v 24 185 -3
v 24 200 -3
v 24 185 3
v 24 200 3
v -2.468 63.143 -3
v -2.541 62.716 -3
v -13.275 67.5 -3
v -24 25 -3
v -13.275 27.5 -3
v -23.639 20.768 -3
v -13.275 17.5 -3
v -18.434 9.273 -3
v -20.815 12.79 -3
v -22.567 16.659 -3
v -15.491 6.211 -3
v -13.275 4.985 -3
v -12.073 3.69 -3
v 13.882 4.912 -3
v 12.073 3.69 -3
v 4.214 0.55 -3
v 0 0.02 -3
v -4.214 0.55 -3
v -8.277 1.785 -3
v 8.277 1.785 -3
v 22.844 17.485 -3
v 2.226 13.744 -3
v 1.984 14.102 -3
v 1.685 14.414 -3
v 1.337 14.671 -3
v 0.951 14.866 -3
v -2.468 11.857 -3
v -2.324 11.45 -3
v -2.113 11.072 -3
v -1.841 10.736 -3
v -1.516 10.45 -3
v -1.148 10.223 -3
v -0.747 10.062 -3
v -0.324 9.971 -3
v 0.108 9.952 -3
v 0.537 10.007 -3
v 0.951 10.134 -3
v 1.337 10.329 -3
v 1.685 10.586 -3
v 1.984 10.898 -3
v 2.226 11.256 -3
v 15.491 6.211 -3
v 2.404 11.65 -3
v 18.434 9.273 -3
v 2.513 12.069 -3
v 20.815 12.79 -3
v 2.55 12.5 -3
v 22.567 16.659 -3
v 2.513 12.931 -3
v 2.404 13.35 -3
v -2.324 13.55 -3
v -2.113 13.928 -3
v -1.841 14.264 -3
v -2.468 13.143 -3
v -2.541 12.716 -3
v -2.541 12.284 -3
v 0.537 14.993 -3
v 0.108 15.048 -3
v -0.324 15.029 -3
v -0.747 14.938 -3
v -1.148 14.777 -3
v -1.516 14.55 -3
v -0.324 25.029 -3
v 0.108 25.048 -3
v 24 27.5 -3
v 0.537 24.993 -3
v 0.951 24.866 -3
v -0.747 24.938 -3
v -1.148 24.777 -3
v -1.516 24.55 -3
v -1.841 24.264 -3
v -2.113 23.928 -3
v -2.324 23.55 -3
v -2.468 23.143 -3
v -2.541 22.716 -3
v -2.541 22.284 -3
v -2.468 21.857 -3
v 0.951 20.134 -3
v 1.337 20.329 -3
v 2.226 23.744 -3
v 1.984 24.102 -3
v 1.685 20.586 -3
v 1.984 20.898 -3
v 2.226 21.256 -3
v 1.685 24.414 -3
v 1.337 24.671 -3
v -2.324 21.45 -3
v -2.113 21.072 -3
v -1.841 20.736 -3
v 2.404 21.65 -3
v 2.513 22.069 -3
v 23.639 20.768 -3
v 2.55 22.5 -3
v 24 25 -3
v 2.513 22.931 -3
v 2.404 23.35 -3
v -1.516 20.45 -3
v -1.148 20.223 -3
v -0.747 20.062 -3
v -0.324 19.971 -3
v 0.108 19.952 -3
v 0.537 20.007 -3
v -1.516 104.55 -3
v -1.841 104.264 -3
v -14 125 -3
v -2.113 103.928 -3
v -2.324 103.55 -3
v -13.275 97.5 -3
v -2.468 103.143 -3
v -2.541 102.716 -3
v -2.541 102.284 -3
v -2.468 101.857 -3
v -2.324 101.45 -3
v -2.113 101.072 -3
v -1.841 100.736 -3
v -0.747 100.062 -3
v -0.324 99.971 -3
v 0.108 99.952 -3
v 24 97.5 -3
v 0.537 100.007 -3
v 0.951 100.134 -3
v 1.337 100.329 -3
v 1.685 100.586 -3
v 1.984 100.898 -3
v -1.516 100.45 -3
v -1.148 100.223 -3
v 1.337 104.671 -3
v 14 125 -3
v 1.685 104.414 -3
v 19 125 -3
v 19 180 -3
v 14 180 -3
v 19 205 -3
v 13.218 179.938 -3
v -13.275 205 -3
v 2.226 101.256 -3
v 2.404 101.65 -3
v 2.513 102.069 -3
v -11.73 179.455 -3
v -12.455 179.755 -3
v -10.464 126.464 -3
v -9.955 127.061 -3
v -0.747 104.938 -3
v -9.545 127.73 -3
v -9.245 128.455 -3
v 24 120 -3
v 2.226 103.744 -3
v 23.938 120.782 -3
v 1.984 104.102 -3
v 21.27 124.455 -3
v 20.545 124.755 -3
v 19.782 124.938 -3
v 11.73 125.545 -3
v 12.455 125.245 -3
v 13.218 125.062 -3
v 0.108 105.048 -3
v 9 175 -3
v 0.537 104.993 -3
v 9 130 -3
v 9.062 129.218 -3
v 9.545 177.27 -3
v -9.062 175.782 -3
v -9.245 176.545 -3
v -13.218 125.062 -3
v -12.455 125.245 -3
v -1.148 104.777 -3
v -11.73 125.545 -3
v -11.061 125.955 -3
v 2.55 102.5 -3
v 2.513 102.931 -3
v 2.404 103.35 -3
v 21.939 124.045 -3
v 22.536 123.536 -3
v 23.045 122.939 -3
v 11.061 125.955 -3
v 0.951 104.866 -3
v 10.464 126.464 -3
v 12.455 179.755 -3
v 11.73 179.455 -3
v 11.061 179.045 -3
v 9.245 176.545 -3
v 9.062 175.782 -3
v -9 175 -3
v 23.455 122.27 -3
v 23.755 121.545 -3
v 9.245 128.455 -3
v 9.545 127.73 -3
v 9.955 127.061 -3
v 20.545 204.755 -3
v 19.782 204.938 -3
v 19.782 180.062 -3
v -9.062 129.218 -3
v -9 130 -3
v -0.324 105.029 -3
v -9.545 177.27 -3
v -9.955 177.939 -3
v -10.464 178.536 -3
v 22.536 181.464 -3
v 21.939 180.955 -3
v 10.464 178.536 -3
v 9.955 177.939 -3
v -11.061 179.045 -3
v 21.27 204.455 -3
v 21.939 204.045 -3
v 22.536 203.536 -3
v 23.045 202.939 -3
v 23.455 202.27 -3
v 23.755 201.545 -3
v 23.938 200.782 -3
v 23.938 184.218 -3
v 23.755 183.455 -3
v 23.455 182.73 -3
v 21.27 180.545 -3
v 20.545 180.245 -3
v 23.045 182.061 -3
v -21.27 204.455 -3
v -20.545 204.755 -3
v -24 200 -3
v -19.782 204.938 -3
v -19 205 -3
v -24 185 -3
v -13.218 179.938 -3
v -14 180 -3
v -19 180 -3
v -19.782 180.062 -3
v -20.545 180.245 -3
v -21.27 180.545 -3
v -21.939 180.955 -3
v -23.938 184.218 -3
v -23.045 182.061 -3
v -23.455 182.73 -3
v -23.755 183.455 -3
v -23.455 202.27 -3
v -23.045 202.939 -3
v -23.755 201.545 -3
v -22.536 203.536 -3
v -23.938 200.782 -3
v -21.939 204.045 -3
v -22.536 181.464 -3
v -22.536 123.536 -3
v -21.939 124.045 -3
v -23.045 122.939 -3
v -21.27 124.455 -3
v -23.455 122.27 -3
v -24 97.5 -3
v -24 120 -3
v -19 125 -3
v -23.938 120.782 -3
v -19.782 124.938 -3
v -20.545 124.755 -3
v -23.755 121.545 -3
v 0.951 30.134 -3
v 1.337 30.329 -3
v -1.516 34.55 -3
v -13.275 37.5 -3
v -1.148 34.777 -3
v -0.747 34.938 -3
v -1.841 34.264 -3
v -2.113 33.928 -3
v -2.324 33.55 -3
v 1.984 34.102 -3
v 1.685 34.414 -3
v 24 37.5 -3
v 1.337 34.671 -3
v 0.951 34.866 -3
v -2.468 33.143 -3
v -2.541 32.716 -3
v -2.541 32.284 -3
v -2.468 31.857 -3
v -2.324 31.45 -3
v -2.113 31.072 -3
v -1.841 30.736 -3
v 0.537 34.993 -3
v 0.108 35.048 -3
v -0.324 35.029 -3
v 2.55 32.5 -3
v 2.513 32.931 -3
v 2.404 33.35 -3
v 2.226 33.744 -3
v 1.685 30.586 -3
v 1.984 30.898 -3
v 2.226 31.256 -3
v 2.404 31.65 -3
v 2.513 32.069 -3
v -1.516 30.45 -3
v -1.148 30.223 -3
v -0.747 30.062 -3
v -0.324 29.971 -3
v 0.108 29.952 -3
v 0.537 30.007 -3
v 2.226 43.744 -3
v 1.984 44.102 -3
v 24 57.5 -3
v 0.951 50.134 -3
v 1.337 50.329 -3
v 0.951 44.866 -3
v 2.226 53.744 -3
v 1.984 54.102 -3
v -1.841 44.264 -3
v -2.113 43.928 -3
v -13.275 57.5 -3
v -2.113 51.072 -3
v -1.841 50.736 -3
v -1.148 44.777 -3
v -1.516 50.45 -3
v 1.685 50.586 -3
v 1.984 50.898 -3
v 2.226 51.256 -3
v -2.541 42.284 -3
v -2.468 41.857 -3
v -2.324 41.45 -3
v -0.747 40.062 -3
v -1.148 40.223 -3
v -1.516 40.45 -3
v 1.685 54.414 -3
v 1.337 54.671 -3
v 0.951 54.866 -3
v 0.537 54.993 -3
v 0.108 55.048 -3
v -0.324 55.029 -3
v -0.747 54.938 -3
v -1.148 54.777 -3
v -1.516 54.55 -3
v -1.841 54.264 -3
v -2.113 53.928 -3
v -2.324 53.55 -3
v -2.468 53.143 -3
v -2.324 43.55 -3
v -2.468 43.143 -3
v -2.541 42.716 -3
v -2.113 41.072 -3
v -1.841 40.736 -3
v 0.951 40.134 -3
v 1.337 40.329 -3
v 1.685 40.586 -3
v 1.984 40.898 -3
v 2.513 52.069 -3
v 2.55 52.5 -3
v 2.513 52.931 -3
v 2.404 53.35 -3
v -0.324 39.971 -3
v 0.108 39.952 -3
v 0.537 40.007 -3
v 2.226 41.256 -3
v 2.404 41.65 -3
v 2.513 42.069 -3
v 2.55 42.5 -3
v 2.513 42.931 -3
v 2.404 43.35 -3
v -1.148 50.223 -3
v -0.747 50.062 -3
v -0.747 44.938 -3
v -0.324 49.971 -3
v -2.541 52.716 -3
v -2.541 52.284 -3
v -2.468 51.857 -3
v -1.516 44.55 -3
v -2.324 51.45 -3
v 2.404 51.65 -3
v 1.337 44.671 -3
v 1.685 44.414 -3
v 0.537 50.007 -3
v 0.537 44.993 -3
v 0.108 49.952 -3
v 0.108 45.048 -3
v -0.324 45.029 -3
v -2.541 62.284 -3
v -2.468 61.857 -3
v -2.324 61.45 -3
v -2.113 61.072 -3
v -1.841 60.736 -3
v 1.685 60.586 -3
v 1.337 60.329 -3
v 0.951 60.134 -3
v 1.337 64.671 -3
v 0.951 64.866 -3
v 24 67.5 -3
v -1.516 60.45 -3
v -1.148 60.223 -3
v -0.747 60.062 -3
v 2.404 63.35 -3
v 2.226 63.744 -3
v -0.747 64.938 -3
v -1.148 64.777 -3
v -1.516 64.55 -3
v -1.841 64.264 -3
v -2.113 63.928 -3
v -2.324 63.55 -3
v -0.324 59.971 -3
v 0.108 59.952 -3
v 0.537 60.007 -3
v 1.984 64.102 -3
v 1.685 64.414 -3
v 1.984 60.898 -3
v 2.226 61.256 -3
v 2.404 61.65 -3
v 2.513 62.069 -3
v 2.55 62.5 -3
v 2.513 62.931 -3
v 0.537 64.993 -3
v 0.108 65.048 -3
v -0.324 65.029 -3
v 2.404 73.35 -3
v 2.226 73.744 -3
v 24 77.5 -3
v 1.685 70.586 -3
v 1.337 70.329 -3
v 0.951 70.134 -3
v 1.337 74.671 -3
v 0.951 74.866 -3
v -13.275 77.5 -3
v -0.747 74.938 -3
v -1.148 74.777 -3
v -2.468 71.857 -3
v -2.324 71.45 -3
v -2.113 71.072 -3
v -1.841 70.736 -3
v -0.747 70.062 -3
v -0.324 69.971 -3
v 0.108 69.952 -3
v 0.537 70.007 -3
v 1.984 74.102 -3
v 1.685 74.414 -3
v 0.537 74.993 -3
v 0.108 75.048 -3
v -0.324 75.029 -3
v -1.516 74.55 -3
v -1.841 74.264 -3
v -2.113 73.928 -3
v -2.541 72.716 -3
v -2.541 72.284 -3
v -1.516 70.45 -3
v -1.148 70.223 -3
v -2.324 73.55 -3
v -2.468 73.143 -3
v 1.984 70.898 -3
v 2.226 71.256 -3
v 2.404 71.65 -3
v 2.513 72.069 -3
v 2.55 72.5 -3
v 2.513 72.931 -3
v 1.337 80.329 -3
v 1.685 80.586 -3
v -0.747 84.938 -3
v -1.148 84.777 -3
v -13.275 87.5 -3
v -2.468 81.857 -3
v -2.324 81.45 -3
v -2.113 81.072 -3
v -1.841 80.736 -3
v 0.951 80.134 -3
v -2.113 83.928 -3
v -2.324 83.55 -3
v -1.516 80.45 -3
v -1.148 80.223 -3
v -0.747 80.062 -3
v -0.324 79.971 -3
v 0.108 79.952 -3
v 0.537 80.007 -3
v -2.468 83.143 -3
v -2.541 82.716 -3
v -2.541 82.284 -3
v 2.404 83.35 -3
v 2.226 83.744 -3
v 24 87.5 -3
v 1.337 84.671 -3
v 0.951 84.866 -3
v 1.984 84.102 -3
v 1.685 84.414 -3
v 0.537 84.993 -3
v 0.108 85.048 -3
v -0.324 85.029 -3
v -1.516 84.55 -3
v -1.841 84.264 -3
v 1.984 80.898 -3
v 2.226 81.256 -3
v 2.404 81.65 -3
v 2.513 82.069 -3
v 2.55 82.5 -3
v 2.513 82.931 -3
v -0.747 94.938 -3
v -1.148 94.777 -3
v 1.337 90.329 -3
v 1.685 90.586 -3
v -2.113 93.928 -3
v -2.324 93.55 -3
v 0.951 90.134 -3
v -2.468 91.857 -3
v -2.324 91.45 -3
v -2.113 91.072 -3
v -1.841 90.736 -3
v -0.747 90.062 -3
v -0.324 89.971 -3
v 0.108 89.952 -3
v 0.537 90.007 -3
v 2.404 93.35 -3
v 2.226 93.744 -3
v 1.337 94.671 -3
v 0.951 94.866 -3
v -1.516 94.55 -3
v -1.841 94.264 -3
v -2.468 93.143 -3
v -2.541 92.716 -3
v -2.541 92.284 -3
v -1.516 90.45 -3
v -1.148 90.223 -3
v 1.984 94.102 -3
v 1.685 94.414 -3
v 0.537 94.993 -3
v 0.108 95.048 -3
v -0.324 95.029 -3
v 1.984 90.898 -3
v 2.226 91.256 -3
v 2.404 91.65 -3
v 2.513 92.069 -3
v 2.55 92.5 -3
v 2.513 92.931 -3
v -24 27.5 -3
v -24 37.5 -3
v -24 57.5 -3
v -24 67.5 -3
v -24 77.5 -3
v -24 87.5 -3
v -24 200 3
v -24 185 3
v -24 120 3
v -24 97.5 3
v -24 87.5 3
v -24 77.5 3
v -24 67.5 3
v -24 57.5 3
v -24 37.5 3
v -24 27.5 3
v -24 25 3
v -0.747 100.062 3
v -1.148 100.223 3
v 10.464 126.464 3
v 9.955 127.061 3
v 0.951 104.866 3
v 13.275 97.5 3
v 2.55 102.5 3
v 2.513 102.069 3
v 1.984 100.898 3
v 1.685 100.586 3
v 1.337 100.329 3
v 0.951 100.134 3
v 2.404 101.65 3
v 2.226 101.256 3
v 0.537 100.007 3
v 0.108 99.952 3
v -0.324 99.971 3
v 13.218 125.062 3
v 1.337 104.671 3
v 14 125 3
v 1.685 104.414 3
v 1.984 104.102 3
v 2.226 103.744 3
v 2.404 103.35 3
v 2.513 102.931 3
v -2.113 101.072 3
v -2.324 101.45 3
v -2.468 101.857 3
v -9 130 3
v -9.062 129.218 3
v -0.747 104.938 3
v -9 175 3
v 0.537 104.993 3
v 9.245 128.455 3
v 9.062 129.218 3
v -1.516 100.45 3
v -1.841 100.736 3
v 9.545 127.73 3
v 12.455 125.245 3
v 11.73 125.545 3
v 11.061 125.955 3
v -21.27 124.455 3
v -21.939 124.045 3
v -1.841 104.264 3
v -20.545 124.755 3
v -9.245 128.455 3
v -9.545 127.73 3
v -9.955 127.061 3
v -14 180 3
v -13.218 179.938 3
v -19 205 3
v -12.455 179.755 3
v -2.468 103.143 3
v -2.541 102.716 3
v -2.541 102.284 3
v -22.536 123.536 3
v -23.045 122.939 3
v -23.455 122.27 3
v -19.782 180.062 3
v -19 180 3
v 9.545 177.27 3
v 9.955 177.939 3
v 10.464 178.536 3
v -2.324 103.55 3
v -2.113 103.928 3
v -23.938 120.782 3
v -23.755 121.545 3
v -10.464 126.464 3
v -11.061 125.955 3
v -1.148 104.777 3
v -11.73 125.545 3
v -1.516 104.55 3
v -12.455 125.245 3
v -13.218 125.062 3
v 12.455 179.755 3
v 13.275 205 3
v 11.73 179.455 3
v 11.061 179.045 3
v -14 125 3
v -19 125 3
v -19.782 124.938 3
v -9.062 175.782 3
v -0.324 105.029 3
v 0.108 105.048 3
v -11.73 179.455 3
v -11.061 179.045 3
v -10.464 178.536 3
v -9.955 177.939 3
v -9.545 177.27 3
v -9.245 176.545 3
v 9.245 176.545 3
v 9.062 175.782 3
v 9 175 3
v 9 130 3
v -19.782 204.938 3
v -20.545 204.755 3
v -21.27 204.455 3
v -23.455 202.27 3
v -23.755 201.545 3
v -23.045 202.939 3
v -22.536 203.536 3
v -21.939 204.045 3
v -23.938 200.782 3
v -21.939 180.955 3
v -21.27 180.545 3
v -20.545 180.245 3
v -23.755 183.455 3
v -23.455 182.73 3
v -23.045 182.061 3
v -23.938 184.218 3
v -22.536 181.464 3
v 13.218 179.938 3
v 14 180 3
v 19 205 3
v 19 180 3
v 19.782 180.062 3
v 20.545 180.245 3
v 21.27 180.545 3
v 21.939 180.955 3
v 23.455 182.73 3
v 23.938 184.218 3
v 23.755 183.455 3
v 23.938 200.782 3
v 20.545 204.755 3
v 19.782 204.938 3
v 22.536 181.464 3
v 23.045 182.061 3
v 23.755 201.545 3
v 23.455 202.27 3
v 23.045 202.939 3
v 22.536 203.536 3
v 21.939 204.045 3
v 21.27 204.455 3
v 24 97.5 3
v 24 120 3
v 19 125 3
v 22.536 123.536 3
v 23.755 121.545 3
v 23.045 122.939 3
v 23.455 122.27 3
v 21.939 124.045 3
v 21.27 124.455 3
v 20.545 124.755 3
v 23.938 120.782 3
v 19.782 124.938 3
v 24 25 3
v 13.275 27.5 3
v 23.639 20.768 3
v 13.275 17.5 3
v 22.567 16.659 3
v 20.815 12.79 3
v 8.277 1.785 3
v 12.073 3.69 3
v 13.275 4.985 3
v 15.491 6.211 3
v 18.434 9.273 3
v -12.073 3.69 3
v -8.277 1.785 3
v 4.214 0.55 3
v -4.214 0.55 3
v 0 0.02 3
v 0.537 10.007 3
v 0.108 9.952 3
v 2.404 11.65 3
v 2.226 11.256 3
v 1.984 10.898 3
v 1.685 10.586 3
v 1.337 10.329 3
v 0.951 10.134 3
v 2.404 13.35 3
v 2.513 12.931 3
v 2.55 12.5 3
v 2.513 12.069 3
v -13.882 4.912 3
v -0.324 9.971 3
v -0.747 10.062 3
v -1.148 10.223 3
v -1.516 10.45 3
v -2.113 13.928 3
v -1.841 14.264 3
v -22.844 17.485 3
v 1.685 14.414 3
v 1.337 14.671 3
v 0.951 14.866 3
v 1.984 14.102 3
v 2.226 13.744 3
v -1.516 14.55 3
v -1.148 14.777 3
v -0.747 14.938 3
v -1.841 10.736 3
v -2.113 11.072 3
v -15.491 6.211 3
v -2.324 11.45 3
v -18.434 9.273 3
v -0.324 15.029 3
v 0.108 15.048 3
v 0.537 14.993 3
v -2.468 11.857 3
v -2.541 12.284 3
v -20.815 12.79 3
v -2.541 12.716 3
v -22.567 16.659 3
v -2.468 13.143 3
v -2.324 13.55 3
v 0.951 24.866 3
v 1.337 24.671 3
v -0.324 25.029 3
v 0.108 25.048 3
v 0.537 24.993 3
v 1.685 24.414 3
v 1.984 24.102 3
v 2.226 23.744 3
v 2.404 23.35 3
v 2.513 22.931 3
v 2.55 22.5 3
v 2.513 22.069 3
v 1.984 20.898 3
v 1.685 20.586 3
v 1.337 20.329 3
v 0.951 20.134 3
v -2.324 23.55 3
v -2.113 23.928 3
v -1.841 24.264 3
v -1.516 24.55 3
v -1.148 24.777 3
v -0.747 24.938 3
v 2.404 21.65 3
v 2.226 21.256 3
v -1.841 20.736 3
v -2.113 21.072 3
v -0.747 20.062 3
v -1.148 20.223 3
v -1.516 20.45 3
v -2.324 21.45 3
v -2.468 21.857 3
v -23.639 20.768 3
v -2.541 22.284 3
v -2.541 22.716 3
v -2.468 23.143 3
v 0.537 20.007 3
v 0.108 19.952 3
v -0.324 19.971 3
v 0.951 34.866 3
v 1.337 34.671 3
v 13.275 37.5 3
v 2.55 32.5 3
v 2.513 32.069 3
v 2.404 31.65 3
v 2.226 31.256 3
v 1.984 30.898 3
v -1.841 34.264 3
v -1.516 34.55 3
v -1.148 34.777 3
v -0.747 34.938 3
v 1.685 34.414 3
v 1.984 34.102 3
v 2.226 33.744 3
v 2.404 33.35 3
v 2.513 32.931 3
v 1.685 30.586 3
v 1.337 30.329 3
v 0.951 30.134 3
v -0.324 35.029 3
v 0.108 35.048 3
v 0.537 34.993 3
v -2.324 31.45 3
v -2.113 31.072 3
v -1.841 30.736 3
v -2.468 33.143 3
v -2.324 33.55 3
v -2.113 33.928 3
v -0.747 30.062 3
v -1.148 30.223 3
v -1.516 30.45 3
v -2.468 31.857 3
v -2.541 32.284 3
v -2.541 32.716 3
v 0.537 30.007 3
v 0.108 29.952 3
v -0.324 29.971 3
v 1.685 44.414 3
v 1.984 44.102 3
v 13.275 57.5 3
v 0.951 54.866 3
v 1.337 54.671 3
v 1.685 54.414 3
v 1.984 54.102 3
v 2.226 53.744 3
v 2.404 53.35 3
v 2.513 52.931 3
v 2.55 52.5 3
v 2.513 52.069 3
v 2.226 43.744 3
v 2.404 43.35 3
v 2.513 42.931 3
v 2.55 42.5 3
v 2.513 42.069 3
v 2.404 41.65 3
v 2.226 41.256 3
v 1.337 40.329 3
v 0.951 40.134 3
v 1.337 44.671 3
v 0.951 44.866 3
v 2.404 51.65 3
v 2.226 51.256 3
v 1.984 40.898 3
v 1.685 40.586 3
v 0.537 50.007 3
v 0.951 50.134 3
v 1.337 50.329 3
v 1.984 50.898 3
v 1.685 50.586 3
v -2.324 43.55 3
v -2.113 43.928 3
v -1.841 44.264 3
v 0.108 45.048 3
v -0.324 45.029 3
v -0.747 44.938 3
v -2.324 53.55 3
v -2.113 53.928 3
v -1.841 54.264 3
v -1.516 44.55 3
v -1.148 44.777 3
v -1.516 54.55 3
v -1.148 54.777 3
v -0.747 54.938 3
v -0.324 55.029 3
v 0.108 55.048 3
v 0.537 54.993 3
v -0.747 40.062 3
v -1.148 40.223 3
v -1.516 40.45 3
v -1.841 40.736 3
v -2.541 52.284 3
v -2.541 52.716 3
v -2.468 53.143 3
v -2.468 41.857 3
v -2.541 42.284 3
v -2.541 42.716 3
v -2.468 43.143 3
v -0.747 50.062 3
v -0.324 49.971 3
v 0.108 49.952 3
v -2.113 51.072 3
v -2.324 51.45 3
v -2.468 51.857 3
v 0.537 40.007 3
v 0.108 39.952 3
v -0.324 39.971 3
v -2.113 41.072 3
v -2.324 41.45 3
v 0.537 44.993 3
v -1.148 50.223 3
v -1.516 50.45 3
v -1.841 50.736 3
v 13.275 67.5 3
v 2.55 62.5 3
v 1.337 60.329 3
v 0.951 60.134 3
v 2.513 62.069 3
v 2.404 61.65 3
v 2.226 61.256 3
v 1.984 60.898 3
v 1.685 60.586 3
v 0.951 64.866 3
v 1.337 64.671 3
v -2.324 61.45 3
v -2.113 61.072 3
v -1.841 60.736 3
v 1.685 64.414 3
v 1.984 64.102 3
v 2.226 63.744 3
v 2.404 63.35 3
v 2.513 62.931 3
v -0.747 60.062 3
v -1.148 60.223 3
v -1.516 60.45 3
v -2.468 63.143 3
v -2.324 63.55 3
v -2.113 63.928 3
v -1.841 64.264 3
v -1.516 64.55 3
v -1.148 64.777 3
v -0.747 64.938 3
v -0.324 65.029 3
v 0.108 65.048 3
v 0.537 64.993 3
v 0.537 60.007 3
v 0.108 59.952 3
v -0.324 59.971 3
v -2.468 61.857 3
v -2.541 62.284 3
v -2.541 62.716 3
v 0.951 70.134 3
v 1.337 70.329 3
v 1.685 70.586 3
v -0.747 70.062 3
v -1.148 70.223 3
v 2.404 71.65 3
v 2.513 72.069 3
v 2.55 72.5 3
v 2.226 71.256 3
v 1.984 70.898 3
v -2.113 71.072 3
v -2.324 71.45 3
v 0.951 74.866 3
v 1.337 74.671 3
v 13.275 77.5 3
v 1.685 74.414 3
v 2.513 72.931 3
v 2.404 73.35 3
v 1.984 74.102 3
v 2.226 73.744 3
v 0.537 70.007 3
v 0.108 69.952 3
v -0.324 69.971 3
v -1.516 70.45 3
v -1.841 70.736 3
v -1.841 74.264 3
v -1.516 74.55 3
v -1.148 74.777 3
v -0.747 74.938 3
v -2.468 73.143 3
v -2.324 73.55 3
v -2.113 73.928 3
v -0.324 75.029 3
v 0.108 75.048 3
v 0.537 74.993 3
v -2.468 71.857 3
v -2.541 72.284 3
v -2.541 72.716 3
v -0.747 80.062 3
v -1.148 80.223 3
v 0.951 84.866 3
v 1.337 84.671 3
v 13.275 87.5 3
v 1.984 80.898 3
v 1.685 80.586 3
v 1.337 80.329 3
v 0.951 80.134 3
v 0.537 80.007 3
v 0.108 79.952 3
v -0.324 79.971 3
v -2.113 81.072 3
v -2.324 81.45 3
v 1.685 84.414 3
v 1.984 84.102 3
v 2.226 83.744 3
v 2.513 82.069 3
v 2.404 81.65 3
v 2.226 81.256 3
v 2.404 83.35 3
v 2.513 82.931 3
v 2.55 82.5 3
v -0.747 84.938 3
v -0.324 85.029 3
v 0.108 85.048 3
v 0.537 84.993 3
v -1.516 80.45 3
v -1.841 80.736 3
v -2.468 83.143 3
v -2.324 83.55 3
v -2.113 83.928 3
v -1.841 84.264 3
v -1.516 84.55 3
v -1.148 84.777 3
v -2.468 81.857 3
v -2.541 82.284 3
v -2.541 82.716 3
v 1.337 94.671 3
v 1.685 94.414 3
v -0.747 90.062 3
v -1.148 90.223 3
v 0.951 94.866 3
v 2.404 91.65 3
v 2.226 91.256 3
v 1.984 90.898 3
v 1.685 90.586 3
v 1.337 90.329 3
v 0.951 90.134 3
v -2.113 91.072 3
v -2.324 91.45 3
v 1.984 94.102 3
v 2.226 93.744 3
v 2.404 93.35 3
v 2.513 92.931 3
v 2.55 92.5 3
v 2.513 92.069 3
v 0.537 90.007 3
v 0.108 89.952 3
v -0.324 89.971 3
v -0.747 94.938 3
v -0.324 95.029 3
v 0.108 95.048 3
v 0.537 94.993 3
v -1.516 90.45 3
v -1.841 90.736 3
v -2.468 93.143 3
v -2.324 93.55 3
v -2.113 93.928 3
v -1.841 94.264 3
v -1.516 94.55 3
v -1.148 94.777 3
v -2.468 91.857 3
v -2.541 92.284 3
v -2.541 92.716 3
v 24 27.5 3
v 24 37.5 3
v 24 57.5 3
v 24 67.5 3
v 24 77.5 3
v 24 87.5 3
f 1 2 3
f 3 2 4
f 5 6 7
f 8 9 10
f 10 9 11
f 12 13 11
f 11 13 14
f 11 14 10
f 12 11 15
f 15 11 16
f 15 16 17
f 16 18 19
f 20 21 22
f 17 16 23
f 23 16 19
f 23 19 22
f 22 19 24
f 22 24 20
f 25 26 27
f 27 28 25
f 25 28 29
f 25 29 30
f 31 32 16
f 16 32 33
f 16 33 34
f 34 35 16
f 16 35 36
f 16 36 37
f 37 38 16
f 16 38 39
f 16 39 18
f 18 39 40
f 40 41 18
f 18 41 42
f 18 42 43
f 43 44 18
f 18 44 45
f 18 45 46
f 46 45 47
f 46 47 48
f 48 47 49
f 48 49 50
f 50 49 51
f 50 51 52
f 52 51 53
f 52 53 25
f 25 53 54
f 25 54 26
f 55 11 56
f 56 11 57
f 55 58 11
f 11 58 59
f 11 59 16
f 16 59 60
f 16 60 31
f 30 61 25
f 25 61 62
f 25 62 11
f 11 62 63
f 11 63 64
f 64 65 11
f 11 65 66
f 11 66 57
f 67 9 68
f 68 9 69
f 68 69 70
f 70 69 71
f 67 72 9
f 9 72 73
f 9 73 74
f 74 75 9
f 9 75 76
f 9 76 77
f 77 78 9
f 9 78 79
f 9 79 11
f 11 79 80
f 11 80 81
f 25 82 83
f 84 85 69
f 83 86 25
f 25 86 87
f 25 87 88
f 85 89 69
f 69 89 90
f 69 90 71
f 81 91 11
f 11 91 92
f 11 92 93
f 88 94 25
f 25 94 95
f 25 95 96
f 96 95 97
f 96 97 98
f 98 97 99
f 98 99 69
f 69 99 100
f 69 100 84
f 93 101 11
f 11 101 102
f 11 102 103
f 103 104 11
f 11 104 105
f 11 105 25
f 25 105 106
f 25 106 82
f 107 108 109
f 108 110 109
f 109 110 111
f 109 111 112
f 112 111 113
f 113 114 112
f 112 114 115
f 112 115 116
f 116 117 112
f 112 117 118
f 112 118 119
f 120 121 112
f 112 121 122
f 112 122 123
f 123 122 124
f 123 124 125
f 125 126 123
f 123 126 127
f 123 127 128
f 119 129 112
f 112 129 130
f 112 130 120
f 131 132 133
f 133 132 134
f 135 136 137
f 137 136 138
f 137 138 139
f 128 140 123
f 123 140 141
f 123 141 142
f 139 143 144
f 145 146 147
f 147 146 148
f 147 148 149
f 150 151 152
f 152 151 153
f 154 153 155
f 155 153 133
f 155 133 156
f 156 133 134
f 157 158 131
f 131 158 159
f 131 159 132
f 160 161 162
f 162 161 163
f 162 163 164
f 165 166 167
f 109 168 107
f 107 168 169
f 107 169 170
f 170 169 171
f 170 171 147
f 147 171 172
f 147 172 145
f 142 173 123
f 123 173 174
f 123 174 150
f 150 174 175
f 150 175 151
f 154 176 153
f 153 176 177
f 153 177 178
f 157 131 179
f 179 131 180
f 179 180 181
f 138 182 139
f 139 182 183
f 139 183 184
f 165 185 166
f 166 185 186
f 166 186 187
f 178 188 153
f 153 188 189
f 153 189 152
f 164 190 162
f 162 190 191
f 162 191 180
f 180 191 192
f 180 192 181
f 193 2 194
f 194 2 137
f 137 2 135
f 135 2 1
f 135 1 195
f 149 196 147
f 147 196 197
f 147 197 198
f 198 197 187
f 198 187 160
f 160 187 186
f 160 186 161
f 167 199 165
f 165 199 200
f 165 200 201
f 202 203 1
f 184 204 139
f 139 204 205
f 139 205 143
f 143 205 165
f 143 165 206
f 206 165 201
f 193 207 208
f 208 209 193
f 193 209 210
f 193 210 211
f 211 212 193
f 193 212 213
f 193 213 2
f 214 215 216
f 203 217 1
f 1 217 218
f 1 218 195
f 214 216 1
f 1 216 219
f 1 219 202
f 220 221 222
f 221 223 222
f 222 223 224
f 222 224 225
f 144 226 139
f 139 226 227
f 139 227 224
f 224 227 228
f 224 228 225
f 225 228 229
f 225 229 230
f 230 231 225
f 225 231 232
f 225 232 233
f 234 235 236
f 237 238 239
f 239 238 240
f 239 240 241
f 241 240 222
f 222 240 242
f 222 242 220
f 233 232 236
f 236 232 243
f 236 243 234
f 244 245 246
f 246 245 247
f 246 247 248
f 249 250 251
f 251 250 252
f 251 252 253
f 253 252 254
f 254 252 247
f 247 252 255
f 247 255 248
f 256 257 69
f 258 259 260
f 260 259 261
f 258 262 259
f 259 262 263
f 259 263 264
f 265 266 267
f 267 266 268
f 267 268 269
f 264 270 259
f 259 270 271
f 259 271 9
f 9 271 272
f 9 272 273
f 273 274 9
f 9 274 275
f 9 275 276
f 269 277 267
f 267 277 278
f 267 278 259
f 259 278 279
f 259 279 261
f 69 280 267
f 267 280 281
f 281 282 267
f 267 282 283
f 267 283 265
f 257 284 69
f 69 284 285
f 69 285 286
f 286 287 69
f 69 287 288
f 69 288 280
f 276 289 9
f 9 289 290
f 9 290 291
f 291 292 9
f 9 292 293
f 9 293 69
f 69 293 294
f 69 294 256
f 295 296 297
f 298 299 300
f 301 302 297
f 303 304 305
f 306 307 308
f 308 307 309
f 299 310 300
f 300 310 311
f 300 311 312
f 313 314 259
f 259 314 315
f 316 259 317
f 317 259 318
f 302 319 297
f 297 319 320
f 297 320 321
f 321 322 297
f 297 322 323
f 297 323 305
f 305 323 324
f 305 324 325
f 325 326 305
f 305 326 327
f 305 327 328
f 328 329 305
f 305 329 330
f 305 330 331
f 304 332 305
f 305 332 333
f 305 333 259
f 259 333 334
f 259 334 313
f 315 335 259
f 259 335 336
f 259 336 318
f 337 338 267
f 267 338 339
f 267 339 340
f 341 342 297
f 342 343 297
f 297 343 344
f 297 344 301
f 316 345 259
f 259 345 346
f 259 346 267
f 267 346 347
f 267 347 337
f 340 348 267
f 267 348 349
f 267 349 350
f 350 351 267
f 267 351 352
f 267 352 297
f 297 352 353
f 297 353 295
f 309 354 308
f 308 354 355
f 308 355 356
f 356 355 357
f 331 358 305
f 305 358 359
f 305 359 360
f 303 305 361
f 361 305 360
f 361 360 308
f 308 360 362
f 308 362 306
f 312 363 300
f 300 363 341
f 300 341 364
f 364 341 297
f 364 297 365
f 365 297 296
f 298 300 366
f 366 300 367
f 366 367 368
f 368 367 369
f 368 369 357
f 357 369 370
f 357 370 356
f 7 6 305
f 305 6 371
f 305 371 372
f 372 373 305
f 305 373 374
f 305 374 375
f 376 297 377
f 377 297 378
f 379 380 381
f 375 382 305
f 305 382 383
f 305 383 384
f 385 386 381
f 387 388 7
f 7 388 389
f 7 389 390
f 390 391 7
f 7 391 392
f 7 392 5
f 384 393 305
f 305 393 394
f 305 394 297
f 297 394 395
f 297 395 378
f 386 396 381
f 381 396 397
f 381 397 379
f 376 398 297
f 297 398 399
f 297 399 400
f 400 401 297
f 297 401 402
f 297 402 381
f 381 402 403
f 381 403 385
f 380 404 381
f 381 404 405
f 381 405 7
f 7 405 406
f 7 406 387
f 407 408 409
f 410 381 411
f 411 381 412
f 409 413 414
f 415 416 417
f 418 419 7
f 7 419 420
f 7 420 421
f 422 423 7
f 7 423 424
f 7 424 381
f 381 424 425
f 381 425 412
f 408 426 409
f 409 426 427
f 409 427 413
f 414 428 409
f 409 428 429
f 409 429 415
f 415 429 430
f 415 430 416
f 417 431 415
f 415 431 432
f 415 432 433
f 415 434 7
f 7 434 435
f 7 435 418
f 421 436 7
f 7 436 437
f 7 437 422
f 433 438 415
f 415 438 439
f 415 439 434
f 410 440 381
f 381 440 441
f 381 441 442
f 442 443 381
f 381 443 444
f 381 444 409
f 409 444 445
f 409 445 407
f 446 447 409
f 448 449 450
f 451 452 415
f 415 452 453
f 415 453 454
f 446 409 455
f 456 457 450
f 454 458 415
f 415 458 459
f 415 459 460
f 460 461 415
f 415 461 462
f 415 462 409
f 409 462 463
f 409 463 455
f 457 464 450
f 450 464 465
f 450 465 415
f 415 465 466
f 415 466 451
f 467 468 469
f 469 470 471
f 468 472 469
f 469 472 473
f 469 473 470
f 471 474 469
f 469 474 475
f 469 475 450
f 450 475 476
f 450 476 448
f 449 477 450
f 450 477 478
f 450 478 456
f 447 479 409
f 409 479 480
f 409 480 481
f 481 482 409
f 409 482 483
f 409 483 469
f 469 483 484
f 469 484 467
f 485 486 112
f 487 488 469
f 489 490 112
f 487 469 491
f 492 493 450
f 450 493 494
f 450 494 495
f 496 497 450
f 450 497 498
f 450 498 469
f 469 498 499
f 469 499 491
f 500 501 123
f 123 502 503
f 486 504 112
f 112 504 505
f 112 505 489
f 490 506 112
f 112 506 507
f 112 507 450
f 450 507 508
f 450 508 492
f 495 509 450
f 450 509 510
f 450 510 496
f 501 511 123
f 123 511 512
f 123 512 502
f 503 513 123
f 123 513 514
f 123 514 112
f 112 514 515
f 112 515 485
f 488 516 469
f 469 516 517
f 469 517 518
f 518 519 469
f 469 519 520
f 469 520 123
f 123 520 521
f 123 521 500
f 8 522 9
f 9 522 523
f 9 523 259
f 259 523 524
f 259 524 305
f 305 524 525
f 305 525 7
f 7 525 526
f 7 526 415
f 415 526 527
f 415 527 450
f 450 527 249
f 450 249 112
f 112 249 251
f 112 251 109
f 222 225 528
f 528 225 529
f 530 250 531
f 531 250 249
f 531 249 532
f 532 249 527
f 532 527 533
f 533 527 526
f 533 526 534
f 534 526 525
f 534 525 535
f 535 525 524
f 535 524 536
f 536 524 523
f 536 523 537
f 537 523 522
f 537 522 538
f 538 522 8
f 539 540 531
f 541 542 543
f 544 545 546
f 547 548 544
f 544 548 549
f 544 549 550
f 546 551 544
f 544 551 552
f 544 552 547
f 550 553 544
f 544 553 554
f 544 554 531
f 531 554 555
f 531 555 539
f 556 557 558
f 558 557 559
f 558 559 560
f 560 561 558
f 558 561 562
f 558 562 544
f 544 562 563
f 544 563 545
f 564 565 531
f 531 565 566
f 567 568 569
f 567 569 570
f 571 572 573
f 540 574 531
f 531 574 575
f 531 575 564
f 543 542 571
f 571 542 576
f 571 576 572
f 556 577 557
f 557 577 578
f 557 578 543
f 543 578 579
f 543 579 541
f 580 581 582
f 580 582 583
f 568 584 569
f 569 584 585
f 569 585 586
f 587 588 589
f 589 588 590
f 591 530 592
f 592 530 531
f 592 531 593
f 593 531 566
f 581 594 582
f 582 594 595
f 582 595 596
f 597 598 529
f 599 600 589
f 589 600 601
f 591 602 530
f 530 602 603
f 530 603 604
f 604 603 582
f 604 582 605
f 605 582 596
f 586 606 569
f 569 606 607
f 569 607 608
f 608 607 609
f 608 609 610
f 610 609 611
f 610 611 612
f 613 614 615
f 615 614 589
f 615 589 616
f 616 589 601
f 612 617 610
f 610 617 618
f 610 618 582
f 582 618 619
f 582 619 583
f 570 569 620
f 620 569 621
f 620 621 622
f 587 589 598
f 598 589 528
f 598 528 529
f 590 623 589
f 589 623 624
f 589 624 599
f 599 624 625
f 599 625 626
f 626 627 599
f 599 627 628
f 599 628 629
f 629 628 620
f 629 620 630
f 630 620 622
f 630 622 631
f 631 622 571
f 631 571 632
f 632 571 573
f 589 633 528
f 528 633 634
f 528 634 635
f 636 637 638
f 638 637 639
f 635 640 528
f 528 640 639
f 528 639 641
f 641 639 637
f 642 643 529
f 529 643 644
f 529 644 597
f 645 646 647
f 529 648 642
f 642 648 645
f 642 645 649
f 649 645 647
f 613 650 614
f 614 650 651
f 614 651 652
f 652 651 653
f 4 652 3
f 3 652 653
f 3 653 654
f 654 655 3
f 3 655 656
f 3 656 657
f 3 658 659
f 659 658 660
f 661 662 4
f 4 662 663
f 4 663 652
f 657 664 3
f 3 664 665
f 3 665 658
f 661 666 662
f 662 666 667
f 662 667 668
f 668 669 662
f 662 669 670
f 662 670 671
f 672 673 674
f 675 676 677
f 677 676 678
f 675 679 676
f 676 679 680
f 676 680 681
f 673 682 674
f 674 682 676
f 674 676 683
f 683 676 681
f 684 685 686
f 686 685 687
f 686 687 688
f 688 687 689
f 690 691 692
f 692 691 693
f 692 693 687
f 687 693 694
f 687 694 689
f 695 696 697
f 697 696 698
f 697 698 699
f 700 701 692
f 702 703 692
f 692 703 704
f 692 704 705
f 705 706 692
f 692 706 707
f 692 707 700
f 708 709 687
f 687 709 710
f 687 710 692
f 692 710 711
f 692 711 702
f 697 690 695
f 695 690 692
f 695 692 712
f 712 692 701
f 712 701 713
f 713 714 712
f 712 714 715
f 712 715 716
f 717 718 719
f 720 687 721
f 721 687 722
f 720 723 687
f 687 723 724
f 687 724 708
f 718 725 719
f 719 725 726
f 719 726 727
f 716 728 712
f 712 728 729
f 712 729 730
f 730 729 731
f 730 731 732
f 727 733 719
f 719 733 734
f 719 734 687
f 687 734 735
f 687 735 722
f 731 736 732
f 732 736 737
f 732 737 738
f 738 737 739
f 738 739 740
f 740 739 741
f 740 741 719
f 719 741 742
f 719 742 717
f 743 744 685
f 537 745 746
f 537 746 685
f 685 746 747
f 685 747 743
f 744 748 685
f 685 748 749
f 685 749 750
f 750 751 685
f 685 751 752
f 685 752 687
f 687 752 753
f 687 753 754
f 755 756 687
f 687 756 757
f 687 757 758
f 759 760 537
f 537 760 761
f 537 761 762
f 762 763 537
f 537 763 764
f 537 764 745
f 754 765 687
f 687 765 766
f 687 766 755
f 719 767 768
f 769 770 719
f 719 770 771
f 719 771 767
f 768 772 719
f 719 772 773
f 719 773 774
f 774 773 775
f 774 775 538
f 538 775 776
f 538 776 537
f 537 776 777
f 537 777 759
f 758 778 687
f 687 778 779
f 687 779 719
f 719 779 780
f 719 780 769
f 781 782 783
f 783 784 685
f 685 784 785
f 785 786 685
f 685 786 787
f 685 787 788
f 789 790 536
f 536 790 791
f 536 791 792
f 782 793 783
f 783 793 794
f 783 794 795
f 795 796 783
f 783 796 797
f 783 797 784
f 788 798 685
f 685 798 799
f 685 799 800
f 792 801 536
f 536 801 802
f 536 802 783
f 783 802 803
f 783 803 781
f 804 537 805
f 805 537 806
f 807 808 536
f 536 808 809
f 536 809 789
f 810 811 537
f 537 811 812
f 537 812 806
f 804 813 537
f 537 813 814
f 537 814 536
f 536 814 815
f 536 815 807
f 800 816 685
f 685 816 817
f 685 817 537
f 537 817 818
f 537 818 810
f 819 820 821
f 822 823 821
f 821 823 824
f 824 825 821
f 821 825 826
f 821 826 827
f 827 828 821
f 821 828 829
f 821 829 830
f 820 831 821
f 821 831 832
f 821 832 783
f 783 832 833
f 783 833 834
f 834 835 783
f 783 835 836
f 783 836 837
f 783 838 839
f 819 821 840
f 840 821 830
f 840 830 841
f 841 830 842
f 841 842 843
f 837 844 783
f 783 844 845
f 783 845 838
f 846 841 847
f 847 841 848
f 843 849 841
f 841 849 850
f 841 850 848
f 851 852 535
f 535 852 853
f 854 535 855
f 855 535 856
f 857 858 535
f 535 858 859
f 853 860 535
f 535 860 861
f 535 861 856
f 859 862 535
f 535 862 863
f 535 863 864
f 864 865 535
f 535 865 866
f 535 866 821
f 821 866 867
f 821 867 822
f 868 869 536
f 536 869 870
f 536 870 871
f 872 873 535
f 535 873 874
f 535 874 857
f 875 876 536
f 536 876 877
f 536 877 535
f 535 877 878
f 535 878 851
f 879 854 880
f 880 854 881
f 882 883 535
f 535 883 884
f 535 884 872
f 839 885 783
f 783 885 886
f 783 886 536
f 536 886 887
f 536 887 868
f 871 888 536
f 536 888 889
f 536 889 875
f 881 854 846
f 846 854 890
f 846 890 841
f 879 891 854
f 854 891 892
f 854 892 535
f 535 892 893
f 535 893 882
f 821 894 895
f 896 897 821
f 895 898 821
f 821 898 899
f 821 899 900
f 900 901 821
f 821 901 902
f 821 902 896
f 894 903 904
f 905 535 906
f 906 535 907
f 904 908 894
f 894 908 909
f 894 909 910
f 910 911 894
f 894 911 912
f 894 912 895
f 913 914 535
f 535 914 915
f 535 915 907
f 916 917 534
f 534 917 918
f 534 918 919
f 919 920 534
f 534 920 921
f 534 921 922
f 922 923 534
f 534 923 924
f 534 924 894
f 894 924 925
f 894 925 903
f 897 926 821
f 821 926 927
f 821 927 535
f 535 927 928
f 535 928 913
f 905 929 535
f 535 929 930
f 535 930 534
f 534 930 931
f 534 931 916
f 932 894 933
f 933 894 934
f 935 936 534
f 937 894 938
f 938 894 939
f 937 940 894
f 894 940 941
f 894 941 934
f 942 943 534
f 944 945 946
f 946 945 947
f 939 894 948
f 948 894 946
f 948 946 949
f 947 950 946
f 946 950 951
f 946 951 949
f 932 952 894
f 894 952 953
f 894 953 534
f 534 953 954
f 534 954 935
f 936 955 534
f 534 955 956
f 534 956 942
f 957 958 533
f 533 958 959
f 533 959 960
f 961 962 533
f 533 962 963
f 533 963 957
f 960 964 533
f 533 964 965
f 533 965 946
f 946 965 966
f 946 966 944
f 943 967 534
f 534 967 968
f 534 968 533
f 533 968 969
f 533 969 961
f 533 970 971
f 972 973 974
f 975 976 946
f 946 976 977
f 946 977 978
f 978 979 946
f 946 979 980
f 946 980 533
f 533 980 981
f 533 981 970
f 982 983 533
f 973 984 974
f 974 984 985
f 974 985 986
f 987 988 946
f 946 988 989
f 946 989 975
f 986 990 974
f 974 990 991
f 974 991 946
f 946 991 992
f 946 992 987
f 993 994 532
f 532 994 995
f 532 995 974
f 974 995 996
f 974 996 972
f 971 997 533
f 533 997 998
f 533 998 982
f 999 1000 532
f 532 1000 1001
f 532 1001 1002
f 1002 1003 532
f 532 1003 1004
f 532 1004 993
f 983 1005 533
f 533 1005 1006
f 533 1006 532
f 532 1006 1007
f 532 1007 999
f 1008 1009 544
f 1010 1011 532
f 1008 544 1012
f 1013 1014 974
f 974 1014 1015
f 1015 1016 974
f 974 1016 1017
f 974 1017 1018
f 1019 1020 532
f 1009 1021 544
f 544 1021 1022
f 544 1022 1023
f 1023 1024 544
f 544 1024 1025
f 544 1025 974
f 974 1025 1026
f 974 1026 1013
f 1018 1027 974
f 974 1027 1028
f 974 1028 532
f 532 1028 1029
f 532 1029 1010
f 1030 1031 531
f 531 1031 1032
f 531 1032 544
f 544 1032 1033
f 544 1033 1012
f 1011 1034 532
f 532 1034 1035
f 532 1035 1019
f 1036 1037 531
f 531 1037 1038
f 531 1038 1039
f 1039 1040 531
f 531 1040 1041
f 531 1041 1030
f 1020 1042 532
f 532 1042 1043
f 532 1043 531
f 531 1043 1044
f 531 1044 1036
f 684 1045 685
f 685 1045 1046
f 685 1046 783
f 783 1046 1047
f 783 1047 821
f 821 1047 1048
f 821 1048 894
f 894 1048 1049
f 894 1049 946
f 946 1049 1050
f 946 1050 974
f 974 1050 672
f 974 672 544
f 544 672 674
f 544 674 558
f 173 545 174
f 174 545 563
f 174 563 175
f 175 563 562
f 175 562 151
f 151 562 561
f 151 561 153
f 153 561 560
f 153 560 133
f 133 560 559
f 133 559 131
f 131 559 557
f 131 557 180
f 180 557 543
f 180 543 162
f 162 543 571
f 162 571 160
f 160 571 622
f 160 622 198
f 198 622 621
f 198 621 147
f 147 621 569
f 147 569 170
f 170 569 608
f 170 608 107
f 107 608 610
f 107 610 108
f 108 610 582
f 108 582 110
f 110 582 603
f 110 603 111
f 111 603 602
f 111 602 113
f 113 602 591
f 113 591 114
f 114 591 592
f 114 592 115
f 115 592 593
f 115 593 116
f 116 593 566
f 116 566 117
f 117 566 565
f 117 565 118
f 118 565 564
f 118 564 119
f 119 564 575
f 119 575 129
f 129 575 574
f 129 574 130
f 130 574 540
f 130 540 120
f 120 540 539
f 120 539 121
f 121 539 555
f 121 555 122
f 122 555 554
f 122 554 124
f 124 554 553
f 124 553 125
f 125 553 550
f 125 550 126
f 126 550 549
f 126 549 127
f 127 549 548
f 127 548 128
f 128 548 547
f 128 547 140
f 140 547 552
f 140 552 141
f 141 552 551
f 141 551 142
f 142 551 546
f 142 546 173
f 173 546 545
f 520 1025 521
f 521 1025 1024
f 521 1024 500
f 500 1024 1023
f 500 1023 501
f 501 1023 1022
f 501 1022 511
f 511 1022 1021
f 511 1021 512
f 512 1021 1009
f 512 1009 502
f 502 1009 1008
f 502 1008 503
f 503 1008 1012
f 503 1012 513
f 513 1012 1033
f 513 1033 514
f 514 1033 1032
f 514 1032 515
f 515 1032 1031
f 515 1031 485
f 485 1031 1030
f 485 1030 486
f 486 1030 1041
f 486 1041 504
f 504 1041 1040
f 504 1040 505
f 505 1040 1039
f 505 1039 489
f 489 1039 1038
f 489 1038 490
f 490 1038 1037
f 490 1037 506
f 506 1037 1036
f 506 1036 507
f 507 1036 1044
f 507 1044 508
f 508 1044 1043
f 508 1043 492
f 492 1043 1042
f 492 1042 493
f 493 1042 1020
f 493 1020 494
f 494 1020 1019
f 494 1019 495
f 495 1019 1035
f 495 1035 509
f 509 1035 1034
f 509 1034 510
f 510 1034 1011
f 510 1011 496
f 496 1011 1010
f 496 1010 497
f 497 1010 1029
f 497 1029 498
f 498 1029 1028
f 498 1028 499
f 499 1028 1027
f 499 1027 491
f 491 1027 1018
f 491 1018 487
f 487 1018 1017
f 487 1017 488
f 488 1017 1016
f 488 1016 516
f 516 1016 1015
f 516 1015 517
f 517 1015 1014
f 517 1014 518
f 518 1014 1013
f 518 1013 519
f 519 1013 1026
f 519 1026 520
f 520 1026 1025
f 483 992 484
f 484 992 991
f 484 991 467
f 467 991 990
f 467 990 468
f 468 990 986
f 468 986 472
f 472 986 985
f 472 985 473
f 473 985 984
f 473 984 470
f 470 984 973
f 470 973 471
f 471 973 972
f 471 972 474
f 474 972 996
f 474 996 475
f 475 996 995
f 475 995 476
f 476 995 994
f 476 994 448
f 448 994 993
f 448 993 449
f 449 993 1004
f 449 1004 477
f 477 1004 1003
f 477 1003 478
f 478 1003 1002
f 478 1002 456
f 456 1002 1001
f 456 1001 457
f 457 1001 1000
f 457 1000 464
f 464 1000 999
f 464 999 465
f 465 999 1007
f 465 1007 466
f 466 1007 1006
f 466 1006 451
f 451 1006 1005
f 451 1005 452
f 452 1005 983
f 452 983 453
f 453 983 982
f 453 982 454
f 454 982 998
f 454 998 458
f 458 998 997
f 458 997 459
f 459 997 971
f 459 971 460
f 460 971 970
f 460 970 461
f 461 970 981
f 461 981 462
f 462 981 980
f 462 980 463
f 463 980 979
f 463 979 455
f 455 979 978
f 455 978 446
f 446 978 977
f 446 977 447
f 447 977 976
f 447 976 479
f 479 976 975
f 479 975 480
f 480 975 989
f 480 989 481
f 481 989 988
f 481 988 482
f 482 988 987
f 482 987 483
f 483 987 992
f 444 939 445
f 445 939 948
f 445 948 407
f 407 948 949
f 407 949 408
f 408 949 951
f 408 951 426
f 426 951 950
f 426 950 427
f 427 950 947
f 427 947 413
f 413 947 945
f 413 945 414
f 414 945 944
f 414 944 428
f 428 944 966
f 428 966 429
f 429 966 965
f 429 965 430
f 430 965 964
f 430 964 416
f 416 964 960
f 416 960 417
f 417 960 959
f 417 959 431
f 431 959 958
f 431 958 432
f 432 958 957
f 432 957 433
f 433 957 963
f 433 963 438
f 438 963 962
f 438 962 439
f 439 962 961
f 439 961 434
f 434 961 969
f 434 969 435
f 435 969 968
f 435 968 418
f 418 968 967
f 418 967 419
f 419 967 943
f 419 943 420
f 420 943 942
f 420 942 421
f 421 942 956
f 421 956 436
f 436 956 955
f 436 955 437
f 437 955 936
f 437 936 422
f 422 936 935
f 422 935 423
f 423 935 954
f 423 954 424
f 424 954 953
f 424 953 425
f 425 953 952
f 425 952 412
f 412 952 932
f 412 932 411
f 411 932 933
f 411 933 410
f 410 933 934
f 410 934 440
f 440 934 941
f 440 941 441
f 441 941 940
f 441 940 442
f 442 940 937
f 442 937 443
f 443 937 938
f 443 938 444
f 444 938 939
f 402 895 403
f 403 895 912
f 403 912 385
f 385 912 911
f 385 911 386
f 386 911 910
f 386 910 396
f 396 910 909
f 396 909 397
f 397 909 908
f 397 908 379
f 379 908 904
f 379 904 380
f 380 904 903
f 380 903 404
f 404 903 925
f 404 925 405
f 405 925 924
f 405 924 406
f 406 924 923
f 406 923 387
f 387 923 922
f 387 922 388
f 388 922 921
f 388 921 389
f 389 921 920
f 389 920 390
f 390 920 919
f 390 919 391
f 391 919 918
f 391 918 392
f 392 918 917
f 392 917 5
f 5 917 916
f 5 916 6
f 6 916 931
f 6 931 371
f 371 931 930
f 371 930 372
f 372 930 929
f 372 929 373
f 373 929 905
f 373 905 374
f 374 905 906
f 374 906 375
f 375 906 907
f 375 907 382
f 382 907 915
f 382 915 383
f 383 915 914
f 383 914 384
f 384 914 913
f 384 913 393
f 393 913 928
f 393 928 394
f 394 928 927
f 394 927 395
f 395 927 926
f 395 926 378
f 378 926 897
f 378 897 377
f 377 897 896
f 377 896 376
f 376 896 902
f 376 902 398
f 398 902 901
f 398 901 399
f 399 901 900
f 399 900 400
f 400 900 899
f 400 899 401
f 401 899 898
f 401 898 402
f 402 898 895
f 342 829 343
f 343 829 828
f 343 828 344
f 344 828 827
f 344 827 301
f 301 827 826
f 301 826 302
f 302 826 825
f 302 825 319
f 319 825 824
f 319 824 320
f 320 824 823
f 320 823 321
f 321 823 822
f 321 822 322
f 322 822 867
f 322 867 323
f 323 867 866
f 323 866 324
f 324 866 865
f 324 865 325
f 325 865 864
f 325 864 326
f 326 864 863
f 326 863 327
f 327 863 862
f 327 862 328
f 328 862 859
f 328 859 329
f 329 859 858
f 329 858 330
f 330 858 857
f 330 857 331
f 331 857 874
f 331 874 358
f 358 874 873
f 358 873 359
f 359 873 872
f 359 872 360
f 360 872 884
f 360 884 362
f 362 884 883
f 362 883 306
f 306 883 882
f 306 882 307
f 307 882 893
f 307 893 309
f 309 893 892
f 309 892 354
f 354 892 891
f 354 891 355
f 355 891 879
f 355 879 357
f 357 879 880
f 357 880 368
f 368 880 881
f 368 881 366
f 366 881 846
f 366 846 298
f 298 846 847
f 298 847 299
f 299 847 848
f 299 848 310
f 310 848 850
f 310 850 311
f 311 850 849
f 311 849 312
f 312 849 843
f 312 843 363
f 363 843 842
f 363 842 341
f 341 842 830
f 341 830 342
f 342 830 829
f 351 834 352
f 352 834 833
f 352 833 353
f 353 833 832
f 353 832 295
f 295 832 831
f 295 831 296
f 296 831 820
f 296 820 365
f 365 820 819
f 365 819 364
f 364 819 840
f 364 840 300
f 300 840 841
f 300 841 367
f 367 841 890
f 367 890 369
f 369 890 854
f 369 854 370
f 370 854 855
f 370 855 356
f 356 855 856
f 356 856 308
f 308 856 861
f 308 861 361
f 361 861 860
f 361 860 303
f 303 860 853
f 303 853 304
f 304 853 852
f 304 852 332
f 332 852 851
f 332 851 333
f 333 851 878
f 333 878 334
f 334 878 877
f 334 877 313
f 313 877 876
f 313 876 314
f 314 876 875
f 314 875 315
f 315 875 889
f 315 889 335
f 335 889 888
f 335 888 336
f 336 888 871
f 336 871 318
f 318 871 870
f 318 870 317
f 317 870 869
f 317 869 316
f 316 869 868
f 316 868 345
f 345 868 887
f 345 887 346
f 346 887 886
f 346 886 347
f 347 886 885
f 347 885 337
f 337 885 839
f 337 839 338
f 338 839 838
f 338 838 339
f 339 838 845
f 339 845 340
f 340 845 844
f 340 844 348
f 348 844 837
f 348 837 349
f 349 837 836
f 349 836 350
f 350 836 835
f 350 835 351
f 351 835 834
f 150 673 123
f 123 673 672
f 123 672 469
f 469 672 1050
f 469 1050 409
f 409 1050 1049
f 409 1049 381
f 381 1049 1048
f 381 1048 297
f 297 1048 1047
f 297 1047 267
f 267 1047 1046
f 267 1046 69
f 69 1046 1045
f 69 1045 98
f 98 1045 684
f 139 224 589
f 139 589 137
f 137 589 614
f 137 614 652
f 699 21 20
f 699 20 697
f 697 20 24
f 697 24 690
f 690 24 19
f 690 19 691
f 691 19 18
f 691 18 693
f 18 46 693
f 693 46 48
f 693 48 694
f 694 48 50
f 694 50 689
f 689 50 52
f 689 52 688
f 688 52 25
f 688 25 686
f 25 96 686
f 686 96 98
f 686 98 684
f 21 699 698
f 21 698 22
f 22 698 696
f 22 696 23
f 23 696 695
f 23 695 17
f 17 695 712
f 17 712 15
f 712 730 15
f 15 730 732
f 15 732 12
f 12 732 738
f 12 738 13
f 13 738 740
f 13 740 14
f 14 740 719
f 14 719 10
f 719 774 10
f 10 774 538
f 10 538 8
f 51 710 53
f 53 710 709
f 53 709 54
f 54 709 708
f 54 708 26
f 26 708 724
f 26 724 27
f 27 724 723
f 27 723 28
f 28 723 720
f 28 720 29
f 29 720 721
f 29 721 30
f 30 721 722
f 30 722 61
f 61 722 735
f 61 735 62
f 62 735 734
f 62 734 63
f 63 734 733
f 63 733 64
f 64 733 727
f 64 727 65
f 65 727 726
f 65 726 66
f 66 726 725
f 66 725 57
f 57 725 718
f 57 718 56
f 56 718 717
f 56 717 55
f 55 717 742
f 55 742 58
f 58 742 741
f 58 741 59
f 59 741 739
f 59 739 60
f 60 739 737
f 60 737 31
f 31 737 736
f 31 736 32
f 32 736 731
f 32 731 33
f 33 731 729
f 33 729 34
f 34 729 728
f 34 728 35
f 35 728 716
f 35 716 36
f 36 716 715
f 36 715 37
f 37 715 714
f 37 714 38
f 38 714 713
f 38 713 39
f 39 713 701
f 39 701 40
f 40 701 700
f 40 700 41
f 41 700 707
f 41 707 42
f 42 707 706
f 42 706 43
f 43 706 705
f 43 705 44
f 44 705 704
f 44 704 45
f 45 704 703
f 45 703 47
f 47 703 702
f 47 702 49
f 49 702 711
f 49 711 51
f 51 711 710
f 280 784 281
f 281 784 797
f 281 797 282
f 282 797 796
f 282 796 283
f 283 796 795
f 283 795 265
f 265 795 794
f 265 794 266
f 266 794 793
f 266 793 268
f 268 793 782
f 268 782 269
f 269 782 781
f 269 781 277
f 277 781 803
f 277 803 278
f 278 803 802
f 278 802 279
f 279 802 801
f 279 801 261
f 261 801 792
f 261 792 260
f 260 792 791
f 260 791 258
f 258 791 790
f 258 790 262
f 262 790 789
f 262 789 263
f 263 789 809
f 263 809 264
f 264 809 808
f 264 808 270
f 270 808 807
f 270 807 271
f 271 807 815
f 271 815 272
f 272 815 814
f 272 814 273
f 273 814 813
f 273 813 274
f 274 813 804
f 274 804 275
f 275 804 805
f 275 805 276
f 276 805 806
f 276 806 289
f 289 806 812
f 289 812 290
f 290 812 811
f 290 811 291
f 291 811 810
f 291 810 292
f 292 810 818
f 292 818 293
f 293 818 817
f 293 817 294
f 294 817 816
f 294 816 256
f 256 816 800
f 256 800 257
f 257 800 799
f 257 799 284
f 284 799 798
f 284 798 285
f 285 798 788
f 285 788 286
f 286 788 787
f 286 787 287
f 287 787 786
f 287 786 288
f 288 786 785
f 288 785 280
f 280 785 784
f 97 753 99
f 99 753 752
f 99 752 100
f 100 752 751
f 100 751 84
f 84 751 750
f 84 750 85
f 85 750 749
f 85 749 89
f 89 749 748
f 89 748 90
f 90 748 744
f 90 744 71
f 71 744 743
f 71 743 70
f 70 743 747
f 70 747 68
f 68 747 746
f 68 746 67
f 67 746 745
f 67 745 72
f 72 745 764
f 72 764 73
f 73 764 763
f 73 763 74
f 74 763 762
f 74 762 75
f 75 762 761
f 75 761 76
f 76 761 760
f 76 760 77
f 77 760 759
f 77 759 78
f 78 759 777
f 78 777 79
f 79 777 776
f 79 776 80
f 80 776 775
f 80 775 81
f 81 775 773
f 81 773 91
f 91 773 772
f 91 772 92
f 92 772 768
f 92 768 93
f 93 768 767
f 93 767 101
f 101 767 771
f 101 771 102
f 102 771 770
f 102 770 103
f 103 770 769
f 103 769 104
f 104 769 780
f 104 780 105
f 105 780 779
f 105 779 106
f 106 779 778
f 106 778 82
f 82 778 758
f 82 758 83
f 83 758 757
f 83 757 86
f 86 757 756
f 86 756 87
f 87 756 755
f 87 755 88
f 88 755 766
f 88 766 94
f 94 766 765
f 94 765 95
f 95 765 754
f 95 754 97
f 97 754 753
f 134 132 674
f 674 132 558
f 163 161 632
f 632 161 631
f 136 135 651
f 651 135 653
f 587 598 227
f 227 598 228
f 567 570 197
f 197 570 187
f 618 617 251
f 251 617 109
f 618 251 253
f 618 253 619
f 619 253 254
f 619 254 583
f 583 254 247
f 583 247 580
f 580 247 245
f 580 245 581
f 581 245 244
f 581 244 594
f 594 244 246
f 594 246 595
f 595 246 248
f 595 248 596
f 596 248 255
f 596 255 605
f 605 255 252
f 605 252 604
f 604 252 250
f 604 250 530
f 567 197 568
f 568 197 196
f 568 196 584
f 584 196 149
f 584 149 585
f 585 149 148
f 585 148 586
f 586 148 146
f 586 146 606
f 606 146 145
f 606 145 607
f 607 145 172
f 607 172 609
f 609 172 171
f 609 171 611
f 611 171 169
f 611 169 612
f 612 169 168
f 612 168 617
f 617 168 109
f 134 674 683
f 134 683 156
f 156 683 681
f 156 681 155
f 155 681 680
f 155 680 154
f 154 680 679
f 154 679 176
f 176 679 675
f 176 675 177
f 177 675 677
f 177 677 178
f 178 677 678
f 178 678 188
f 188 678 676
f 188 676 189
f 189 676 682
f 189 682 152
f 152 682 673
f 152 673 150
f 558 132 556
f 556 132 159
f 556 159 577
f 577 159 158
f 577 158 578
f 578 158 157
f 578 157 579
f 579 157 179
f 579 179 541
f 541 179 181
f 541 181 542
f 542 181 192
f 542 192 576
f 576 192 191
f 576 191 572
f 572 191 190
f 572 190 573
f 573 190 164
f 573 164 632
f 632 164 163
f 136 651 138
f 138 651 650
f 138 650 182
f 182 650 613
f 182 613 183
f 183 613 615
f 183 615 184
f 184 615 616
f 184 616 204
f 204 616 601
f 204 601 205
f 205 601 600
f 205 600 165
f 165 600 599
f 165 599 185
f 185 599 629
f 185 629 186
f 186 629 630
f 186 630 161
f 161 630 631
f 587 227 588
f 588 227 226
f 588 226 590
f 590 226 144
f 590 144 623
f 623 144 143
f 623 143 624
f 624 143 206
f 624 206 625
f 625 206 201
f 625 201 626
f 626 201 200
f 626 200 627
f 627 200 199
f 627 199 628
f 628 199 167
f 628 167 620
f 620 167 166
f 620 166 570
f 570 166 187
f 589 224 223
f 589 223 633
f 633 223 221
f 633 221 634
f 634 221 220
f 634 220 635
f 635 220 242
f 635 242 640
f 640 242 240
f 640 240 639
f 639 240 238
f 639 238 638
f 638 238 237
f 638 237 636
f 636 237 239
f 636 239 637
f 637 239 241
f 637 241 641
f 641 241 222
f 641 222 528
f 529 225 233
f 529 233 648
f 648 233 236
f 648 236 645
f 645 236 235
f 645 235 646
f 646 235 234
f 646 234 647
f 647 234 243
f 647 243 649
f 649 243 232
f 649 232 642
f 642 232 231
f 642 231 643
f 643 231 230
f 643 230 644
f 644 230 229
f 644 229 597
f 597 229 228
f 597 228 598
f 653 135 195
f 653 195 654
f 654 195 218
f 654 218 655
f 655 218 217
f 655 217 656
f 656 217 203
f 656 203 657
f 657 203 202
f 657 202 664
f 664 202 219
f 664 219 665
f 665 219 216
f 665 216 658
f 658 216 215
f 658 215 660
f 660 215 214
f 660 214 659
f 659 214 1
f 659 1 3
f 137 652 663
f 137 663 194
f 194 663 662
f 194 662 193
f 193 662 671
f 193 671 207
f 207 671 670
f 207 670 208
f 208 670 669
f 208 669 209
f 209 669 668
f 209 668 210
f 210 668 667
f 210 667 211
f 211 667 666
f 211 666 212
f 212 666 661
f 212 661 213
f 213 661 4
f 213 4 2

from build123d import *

# Parameters (mm, degrees)
SKETCH1_W               = 48
SKETCH1_H               = 6
BOSS_EXTRUDE1_DEPTH     = 205
FILLET1_R               = 25
SKETCH2_R               = 2.55
CUT_EXTRUDE1_DEPTH      = 207.487287744
LPATTERN1_COUNT         = 10
LPATTERN1_PITCH         = 10
CUT_EXTRUDE2_DEPTH      = 207.421898063
CUT_EXTRUDE2_DEPTH_BACK = 207.421898063
SKETCH12_W              = 15
SKETCH12_H              = 55
FILLET2_R               = 5


with BuildPart() as part:
    # Sketch1 → Boss-Extrude1 (new body)
    with BuildSketch(Plane(origin=(0, 0, 0), x_dir=(1, 0, 0), z_dir=(0, 1, 0))):
        Rectangle(SKETCH1_W, SKETCH1_H)
    extrude(amount=BOSS_EXTRUDE1_DEPTH)

    # Fillet1
    # the kernel refuses this fillet: 25 mm, written as the material it takes off along each edge
    with BuildSketch(Plane(origin=(-24, 0, 65.5), x_dir=(0, 1, 0), z_dir=(0, 0, -1)), Plane(origin=(24, 0, -65.5), x_dir=(0, 1, 0), z_dir=(0, 0, 1))) as fillet1_piece_1:
        with BuildLine():
            CenterArc((FILLET1_R, FILLET1_R), FILLET1_R, 180, 90)
            Line((0, FILLET1_R), (0, 0))
            Line((0, 0), (FILLET1_R, 0))
        make_face()
    extrude(amount=131, mode=Mode.SUBTRACT)

    # Sketch2 → Cut-Extrude1 (cut, through all)
    with BuildSketch(Plane.XY.offset(3)):
        with Locations((0, 12.5)):
            Circle(SKETCH2_R)
    cut_extrude1 = extrude(amount=-CUT_EXTRUDE1_DEPTH, mode=Mode.SUBTRACT)

    # LPattern1: Cut-Extrude1 ×10
    with Locations(*[(0, i * LPATTERN1_PITCH, 0) for i in range(1, LPATTERN1_COUNT)]):
        add(cut_extrude1, mode=Mode.SUBTRACT)

    # Sketch12 → Cut-Extrude2 (cut, two sides: drawn at the far end of the back side and taken through both)
    with BuildSketch(Plane.XY.offset(-CUT_EXTRUDE2_DEPTH_BACK)):
        with Locations((-16.5, 152.5)):
            Rectangle(SKETCH12_W, SKETCH12_H)
        with Locations((16.5, 152.5)):
            Rectangle(SKETCH12_W, SKETCH12_H)
    extrude(amount=CUT_EXTRUDE2_DEPTH + CUT_EXTRUDE2_DEPTH_BACK, mode=Mode.SUBTRACT)

    # Fillet2
    fillet2_edges = [part.edges().sort_by_distance(p)[0] for p in [
        (-24, 205, 0),
        (24, 205, 0),
        (-24, 125, 0),
        (-24, 180, 0),
        (-9, 180, 0),
        (-9, 125, 0),
        (24, 125, 0),
        (9, 125, 0),
        (9, 180, 0),
        (24, 180, 0),
    ]]
    fillet(fillet2_edges, radius=FILLET2_R)


solid = part.part
